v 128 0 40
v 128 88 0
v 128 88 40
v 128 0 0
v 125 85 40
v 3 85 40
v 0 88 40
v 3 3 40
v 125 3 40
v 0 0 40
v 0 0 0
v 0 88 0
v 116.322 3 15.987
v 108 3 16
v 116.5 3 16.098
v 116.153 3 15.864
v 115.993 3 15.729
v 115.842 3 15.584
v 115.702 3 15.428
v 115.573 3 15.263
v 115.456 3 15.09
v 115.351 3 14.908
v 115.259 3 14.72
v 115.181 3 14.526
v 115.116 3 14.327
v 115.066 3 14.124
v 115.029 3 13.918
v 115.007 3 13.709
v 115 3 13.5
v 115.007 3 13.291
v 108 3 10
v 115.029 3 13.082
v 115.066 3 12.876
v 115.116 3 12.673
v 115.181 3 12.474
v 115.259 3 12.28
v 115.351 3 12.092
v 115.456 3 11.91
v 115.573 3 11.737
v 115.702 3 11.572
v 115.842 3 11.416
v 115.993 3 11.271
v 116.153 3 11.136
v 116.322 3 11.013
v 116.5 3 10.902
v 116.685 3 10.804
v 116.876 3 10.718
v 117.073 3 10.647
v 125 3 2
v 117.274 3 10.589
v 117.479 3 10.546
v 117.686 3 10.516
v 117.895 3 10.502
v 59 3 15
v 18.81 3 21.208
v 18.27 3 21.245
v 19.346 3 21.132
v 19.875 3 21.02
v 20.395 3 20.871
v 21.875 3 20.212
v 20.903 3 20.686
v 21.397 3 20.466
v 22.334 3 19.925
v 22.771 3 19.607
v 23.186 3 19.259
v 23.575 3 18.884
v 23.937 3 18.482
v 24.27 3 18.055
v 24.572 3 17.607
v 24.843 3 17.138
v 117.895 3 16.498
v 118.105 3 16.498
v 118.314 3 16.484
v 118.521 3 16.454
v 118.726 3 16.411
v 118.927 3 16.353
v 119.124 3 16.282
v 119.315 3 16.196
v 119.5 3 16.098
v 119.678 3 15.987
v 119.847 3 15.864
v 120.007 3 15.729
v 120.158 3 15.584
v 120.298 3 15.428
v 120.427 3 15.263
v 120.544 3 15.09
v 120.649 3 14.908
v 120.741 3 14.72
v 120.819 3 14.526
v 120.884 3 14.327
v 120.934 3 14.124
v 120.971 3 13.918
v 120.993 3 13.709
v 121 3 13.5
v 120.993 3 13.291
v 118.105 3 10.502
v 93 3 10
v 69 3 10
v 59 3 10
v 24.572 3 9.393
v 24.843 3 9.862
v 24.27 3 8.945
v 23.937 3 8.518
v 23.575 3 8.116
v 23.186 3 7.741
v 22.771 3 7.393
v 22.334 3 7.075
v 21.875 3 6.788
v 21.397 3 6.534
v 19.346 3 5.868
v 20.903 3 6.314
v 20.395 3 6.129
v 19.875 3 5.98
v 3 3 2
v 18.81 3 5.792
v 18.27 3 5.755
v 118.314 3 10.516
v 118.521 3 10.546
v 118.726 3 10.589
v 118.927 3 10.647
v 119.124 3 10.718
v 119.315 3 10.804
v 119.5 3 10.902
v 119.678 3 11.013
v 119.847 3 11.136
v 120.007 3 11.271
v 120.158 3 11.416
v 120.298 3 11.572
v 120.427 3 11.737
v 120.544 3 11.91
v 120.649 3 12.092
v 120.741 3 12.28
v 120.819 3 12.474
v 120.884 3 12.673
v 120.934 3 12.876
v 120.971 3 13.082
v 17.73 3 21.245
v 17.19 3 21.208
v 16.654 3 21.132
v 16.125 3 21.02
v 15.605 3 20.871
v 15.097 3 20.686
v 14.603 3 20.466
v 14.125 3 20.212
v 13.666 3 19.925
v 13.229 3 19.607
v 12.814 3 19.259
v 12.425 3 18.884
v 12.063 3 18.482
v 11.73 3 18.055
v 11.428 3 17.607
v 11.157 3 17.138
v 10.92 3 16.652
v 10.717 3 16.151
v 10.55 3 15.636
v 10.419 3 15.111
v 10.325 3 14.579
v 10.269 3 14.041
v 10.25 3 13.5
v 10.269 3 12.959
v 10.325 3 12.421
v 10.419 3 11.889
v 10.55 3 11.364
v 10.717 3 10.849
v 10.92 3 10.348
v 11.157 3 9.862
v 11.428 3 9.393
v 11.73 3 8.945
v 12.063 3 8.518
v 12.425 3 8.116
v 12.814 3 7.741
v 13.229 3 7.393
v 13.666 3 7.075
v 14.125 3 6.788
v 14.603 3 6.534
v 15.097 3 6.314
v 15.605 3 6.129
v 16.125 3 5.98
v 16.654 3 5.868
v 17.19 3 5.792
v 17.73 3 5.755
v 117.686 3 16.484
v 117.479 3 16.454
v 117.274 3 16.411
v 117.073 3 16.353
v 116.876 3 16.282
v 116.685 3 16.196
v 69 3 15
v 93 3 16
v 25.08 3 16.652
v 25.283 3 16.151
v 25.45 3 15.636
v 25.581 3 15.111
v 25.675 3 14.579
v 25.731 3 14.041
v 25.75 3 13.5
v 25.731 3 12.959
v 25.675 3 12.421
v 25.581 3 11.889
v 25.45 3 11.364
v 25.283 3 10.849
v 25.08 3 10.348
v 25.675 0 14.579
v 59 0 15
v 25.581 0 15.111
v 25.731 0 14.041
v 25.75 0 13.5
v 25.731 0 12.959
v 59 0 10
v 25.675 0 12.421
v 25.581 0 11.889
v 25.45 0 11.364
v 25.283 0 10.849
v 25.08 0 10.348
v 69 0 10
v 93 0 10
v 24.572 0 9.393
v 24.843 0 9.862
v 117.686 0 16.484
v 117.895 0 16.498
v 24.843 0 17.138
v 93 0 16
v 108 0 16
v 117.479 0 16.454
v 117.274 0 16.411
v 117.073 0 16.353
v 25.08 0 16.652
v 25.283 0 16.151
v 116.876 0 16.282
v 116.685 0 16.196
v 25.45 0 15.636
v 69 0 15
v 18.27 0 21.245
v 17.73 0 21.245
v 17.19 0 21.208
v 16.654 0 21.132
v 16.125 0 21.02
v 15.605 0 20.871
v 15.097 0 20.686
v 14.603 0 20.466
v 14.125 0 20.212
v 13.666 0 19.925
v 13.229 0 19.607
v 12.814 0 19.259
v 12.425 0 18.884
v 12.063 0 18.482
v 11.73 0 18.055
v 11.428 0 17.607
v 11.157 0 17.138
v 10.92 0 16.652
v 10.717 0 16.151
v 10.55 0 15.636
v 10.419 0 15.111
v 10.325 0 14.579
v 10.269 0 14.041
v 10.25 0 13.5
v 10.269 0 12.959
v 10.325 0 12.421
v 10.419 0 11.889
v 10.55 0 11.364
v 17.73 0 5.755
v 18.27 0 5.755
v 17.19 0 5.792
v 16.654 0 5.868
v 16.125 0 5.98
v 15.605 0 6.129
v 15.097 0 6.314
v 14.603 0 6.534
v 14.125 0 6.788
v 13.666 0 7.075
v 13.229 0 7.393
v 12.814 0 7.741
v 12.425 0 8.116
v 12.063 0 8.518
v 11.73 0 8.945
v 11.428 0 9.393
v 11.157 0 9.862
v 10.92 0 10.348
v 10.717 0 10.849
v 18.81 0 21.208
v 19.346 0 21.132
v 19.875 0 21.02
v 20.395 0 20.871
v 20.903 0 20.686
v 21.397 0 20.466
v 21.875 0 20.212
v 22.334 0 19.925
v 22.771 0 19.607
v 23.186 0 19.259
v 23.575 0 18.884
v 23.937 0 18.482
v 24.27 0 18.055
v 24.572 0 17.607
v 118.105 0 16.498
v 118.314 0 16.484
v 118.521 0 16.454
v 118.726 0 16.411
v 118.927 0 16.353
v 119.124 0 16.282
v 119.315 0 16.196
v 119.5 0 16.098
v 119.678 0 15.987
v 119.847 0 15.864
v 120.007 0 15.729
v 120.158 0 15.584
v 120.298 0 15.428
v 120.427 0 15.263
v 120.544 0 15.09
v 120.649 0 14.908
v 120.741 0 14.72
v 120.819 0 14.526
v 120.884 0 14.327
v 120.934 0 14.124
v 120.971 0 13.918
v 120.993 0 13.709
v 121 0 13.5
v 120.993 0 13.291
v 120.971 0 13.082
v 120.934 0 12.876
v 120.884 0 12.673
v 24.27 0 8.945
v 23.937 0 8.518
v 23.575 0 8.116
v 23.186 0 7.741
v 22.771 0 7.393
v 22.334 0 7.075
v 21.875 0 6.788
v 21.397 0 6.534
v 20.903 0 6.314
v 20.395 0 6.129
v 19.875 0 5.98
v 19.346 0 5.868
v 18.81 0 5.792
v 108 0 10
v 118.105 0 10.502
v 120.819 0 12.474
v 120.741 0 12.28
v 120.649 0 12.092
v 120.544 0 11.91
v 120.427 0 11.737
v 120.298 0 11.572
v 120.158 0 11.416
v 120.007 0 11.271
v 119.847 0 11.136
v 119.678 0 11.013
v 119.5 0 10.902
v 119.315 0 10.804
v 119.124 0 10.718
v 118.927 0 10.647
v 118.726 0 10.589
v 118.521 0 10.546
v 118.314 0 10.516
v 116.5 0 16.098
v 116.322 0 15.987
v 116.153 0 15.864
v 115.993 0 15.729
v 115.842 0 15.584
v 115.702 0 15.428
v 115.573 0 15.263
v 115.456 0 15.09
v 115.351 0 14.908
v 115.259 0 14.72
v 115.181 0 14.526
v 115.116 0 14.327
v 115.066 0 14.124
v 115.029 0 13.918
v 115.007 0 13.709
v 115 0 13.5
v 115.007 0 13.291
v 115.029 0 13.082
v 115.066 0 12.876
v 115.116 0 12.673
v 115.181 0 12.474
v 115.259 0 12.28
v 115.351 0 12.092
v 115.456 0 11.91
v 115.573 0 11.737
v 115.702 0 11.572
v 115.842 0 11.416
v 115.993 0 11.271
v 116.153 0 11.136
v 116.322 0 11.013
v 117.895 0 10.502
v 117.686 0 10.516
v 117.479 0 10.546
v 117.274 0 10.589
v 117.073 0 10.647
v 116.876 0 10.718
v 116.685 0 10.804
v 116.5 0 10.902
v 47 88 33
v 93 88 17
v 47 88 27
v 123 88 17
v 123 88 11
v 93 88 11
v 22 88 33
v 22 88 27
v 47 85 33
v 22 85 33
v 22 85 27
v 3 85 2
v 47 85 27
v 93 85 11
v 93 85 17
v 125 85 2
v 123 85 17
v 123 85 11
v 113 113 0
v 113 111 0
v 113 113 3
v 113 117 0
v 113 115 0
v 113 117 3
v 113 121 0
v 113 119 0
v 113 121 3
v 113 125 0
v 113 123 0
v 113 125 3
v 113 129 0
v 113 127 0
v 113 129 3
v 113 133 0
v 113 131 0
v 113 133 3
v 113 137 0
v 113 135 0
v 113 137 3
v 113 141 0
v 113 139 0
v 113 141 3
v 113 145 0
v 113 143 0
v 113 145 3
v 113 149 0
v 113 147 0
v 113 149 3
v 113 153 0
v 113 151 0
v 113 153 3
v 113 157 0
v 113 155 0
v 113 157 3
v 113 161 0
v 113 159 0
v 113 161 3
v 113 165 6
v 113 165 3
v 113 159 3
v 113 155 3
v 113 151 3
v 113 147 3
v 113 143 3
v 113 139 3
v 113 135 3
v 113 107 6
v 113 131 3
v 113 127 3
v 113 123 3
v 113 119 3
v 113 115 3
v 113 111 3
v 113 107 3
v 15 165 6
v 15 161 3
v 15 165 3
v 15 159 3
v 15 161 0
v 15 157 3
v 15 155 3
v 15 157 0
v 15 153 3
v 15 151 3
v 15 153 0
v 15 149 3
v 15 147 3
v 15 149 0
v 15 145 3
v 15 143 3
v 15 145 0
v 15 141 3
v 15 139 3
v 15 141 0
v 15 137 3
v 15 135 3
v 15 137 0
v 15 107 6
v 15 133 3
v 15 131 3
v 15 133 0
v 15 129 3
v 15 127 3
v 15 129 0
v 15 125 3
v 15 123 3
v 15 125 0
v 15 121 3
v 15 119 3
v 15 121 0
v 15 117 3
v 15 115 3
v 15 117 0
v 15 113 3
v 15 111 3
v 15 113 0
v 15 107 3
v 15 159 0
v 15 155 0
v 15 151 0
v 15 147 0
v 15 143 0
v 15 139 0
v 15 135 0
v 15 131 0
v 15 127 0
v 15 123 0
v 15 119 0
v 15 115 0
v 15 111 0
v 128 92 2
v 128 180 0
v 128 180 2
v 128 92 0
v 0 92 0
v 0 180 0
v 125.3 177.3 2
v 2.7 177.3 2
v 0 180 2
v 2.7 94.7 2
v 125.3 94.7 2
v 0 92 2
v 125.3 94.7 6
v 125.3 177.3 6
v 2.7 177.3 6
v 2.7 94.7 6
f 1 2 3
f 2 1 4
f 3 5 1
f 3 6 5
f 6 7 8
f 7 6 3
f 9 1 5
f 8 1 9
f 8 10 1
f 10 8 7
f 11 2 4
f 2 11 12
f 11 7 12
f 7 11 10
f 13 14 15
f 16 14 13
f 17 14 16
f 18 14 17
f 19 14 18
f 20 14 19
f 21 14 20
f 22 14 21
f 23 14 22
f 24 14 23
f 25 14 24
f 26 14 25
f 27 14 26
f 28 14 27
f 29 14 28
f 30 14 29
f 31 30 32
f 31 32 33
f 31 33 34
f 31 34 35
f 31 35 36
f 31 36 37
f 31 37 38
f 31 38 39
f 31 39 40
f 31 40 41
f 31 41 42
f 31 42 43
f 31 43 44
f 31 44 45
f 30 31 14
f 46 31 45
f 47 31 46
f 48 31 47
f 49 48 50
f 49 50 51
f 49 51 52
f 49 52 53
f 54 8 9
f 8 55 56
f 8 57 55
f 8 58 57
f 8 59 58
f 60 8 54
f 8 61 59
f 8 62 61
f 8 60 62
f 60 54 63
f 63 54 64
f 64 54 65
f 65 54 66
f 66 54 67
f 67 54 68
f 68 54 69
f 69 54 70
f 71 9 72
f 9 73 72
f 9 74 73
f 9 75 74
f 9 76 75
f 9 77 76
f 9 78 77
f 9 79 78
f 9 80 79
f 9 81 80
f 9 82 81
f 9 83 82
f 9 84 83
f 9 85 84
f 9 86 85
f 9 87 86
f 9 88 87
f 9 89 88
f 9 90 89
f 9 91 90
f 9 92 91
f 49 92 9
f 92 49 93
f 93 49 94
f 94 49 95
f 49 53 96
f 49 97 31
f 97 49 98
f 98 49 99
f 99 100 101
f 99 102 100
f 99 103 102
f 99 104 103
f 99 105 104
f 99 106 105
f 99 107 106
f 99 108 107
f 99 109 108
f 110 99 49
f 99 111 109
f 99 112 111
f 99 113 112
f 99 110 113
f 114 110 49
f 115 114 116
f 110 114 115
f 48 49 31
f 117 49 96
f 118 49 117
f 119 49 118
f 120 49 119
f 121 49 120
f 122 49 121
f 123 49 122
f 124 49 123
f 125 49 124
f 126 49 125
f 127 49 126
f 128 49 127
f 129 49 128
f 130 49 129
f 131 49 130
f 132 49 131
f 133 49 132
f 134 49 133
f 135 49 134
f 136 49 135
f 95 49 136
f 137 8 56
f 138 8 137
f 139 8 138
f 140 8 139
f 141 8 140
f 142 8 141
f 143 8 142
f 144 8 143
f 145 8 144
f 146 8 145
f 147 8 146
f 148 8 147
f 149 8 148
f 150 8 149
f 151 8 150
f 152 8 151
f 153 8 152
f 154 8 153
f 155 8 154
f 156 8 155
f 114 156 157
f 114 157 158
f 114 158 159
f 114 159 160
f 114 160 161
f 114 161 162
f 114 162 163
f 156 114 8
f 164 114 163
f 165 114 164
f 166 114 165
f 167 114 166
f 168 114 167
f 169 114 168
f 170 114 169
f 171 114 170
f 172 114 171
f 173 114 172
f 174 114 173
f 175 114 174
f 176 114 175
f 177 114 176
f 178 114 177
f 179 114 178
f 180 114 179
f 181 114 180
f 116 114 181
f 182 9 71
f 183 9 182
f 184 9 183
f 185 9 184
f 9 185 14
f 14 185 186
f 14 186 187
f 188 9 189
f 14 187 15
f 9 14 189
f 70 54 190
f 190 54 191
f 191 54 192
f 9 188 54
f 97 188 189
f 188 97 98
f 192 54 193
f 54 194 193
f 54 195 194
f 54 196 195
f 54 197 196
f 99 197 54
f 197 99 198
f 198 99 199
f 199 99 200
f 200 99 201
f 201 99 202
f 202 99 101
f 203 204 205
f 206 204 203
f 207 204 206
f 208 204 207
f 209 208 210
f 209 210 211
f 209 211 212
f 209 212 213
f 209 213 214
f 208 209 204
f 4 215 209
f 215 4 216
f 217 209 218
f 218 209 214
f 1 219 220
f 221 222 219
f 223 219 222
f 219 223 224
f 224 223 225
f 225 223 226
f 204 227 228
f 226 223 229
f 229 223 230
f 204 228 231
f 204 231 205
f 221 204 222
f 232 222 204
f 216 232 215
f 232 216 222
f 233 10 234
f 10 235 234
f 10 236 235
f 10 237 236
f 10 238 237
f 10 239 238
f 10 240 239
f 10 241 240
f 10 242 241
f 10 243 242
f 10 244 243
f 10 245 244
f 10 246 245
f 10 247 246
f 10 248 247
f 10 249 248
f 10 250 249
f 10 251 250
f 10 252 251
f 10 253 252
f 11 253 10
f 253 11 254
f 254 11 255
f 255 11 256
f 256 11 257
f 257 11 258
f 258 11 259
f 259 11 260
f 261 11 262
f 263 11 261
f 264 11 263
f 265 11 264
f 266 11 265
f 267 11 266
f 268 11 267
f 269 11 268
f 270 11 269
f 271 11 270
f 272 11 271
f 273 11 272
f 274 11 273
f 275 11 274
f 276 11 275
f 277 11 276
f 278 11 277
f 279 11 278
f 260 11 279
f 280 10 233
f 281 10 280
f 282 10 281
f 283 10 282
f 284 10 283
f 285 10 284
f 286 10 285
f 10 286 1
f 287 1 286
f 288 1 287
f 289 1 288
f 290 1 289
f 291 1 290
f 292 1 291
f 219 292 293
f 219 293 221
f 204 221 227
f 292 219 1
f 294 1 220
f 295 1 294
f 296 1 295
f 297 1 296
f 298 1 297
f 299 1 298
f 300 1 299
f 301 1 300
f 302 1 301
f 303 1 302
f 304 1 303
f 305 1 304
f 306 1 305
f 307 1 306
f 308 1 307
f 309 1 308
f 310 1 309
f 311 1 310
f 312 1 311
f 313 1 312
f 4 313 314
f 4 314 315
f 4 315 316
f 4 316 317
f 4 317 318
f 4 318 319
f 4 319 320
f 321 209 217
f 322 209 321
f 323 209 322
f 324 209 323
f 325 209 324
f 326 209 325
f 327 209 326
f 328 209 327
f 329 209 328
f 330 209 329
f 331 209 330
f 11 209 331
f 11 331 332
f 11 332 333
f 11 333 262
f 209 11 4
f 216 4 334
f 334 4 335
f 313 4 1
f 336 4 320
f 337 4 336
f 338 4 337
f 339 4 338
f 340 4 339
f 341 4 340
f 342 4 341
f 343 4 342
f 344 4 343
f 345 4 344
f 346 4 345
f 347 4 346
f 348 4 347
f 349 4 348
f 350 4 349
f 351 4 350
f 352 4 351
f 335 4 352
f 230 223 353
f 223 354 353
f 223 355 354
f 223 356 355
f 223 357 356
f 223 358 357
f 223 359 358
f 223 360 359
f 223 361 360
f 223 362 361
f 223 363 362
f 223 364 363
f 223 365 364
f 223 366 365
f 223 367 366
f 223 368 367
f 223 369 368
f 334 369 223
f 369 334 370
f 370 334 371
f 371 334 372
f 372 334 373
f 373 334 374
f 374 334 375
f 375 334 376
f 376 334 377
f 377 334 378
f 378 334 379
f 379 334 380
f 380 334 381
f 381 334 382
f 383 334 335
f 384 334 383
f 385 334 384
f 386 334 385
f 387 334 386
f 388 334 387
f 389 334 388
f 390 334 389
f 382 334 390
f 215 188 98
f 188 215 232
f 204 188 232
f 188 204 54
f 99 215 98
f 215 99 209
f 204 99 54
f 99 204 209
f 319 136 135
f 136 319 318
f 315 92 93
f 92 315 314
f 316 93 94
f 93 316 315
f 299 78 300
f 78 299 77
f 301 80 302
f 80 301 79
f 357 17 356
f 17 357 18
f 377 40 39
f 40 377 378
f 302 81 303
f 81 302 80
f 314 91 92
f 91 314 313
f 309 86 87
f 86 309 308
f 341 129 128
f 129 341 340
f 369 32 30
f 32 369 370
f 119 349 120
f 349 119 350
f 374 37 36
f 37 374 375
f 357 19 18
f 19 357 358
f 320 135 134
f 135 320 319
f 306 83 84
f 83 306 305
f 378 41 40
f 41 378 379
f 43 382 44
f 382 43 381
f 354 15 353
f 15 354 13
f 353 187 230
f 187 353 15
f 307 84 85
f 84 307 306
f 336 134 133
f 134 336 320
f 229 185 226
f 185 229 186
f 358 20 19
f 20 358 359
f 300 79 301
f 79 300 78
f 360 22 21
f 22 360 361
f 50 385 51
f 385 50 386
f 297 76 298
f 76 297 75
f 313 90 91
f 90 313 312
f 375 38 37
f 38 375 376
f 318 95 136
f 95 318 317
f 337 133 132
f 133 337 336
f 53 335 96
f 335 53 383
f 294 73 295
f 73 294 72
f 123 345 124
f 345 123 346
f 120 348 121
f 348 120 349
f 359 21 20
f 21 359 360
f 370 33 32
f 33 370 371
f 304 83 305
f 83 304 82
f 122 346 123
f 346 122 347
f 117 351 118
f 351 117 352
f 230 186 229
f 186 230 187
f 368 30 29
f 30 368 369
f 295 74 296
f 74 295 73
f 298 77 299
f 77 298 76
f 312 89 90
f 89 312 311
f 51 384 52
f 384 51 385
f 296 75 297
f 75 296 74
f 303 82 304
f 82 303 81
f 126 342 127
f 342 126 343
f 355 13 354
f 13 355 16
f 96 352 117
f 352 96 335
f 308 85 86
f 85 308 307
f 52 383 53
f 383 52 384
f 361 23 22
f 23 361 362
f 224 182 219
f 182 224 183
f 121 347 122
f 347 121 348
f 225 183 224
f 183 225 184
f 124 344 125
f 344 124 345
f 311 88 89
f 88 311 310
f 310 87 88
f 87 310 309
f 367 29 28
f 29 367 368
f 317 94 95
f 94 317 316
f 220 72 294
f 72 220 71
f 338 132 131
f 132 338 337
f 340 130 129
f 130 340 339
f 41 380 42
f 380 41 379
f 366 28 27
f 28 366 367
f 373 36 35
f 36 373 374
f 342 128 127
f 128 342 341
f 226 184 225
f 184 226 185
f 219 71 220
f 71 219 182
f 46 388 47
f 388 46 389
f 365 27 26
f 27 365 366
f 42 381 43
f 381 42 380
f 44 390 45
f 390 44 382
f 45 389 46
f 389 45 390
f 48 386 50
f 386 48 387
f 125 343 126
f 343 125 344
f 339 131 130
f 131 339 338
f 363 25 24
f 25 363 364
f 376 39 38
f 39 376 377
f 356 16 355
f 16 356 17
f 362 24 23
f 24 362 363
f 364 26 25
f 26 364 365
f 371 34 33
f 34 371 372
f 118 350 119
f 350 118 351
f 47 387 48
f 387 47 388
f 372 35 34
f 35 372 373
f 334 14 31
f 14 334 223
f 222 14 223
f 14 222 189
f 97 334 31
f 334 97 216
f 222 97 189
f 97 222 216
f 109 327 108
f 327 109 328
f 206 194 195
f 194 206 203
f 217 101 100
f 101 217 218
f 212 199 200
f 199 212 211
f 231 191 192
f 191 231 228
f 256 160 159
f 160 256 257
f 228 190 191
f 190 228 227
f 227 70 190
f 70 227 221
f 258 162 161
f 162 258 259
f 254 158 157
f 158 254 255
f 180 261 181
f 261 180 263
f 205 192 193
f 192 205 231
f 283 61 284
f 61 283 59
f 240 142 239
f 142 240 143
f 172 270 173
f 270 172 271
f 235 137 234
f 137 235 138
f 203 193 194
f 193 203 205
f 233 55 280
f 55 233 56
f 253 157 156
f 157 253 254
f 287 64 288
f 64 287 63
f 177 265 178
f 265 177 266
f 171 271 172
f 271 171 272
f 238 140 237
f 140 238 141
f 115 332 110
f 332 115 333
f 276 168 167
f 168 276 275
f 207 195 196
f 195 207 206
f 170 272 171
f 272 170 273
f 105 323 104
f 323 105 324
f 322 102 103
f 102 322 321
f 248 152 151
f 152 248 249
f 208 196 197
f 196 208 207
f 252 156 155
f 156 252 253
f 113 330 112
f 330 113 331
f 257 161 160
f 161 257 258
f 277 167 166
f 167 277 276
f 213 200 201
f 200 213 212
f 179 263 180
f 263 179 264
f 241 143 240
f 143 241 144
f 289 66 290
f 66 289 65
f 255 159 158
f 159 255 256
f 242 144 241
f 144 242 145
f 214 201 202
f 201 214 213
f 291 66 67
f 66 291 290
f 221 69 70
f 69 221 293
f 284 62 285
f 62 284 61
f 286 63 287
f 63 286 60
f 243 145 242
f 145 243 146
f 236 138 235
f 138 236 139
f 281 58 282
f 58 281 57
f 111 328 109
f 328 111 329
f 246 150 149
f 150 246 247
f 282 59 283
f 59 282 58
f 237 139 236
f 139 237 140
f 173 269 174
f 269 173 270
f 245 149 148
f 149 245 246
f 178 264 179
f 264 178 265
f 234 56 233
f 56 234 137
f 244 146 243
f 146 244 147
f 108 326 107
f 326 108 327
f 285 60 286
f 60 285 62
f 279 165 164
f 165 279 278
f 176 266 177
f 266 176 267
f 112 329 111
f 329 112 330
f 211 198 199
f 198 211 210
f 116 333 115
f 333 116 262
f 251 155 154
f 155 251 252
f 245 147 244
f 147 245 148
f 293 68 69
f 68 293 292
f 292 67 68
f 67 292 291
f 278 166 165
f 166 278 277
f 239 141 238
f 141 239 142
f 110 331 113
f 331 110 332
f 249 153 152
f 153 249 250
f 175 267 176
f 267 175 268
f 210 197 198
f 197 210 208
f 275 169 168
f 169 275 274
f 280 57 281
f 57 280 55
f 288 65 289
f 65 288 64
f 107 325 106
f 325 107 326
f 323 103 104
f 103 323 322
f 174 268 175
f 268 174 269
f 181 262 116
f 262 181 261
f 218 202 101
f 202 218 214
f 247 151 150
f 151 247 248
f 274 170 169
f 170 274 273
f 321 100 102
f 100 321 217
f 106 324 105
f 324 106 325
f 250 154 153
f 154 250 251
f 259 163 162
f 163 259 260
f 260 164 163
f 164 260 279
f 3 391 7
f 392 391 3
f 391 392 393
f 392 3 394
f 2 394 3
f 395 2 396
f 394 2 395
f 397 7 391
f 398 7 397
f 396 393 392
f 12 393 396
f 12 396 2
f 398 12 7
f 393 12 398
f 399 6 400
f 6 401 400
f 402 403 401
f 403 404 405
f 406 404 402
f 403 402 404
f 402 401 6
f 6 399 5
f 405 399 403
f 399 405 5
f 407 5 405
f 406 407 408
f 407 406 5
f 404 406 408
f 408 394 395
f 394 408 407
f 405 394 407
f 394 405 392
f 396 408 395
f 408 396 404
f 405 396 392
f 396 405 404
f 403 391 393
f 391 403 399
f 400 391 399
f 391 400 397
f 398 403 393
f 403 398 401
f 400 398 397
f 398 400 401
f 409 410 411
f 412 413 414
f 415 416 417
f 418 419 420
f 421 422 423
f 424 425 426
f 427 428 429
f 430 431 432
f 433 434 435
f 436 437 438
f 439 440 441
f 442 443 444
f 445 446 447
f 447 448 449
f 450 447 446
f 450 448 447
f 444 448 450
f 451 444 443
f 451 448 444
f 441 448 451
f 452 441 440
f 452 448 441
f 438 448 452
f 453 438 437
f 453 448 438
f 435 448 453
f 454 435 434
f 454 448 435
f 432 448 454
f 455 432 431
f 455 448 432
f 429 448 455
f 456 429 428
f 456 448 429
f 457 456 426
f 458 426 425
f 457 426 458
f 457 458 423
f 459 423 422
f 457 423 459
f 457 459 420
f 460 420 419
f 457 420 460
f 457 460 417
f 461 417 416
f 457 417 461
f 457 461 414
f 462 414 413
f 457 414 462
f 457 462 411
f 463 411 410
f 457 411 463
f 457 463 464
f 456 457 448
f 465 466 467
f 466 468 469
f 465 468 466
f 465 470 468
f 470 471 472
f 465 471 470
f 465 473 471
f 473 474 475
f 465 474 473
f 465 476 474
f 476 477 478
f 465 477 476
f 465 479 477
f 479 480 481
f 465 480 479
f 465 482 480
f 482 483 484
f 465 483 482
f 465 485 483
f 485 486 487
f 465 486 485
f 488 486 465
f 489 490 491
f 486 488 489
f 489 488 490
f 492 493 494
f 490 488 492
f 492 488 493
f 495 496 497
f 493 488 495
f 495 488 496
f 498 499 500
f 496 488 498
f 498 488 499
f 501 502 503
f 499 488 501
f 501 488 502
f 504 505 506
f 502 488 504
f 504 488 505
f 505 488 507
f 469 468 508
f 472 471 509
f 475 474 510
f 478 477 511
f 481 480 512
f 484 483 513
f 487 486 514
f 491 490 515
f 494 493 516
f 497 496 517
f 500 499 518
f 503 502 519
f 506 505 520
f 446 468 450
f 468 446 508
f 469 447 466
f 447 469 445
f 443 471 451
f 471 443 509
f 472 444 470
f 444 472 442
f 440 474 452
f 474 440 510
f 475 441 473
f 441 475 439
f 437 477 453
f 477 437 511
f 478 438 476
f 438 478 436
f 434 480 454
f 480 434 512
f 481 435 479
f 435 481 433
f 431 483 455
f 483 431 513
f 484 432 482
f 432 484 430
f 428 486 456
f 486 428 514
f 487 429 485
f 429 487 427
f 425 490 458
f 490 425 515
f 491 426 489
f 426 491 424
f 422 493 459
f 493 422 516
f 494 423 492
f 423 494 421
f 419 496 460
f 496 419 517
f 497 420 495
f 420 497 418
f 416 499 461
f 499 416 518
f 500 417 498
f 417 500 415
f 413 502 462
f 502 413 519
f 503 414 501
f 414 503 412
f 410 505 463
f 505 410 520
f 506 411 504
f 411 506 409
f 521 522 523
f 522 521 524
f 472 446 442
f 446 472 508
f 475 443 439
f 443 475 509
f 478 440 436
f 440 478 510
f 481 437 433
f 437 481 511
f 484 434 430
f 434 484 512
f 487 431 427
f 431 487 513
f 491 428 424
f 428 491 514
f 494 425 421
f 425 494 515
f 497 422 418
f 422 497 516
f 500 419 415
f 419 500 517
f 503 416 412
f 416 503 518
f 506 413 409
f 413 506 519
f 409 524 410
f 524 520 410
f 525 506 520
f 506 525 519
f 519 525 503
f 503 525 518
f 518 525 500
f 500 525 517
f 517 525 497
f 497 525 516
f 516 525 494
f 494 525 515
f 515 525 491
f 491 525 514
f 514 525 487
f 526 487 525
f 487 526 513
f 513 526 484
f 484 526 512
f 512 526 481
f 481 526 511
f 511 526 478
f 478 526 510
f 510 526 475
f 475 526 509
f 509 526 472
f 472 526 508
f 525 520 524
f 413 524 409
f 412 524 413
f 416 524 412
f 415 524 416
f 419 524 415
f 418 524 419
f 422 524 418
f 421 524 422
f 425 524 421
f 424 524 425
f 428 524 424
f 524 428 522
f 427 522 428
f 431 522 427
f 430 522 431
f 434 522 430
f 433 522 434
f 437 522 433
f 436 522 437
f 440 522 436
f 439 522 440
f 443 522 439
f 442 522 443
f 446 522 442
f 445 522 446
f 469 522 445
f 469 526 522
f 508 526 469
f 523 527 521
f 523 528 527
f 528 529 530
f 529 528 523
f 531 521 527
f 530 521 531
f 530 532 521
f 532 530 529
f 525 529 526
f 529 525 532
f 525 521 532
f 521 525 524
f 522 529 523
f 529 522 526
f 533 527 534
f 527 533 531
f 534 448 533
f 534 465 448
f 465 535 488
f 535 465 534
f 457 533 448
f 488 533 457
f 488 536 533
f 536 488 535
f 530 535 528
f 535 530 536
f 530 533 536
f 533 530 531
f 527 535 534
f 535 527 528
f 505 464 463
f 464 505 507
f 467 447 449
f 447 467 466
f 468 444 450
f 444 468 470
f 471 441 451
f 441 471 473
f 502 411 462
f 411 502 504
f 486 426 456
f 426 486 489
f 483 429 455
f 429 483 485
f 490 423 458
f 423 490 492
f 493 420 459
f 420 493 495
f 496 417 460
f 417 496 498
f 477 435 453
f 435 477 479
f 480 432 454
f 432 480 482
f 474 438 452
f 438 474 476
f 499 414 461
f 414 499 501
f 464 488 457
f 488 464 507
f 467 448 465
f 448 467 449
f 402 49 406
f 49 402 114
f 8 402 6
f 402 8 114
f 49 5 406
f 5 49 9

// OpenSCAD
//Boks til liten forsterkerenhet.
//Dimensjoner
walls = 3;

inner_depth = 82;
inner_width = 122;

depth = inner_depth + 2 * walls;
width = inner_width + 2 * walls;

height = 40;
lid = 2;
lid_vents = 0.4; //how many percent of the lid should be vented?
vent_lid_hole_radius = 1.5;
lid_vents_marg = 5;
lid_vents_number = 20;
bottom = 2;

// Parameters for pin dimensions
pin_diameter = 2.5;  // Adjust diameter based on hole size on the ESP32
pin_height = 8;    // Height of the pins to hold the board

esp32_separation = 1;
esp32_power_width = 10;

//Bottom
translate ([0,0,0]) cube([width, depth,bottom]);

//sides
//left
translate ([0,0,0]) cube([walls,depth,height]);

//right
translate ([width-walls,0,0]){
    cube ([walls,depth,height]);
}

//back
translate([0,depth-walls,0]){
   difference(){
       cube ([width, walls, height]);
	   //put holes to cutout below here...
       //line in
       //translate([width-30,walls-1,10])rotate([90,0,0])cylinder(r=2,h=walls*2,center=true,$fn=90);
       //translate ([width-15,-2,10]) cube ([8.1,walls*2,12.1]);

       //RELAY opening
       translate([width - walls - 30 - 2, -2, bottom + 9])
            cube([30, walls+5, walls*2]);

       //cable opening
       translate([22, -2, bottom + 25])
            cube([25, walls+5, walls*2]);


    }
}
//front
translate([0,0,0]){
    union() {
        //Power Cable for ESP32 usb, supports usb-c

    difference(){
        cube ([width, walls, height]);

        translate([width/2 - esp32_power_width/2, -1, bottom + 8])
            cube([esp32_power_width, walls + 2, walls+2]);


       //audio jack
       translate([width-walls-7, walls-1, bottom + 10 + 1.5])
            rotate([90,0,0])
            cylinder(r=3,h=walls*2,center=true,$fn=90);

       //sim card
       translate([width-walls-17-15, -1, bottom + 8])
            cube([15, walls+2, walls*2]);

       //switch
       translate([walls+15, walls-1, bottom + 10 + 1.5])
            rotate([90,0,0])
            cylinder(r=15.5/2,h=walls*2,center=true,$fn=90);

    }
    }

}


// Parameters for ventilation grid
slot_width = 2;      // Width of each slot
slot_spacing = 4;   // Space between each slot
slot_margin = 15;    // Margin on each side for the slots
lid_insert = 4;
lid_pressure_plus = 0.6;

// Lid with grid pattern
rotate([180, 0, 0]) {
    translate([0, -180, -lid]) {
        difference() {
            union() {
                // Outer part of the lid
                translate([0, 0, 0]) cube([width, depth, lid]);

                // Inner part to hollow out the lid
                translate([walls - lid_pressure_plus / 2, walls - lid_pressure_plus / 2, -lid_insert])
                    cube([
                        width - 2 * walls + lid_pressure_plus,
                        depth - 2 * walls + lid_pressure_plus,
                        lid_insert]);


            }

            translate([slot_margin, slot_margin, -lid_insert-1])
                cube([width - 2 * slot_margin, depth - 2 * slot_margin, lid_insert]);

            // translate([slot_margin, slot_margin, +lid-lid_insert-5])
            //     cube([width - 2 * slot_margin, depth - 2 * slot_margin, lid_insert]);

            // Horizontal slots for ventilation with margins on all sides
            for (y = [slot_margin + slot_spacing : slot_spacing : depth - slot_margin - slot_spacing]) {
                translate([slot_margin, y, +lid-lid_insert-5])
                    cube([width - 2 * slot_margin, slot_width, lid + lid_insert + 5]);
            }

        }
    }
}



// Creating pins for mounting ESP32
// translate([
//         walls + esp32_separation + pin_diameter / 2,
//         depth - walls - esp32_separation - pin_diameter / 2,
//         bottomspace + bottom
//     ])
//     cylinder(d = pin_diameter, h = pin_height);

// translate([
//         walls + esp32_separation + pin_diameter / 2 + 25,
//         depth - walls - esp32_separation - pin_diameter / 2,
//         bottomspace + bottom
//     ])
//     cylinder(d = pin_diameter, h = pin_height);

// translate([
//         walls + esp32_separation + pin_diameter / 2,
//         depth - walls - esp32_separation - pin_diameter / 2 - 50,
//         bottomspace + bottom
//     ])
//     cylinder(d = pin_diameter, h = pin_height);

// translate([
//         walls + esp32_separation + pin_diameter / 2 + 25,
//         depth - walls - esp32_separation - pin_diameter / 2 - 50,
//         bottomspace + bottom
//     ])
//     cylinder(d = pin_diameter, h = pin_height);


//Pins for Relay
// translate([
//         width - walls - esp32_separation - pin_diameter / 2,
//         depth - walls - esp32_separation - pin_diameter / 2,
//         bottomspace + bottom
//     ])
//     cylinder(d = pin_diameter, h = pin_height);
// translate([
//         width - walls - esp32_separation - pin_diameter / 2 - 33,
//         depth - walls - esp32_separation - pin_diameter / 2,
//         bottomspace + bottom
//     ])
//     cylinder(d = pin_diameter, h = pin_height);

// translate([
//         width - walls - esp32_separation - pin_diameter / 2,
//         depth - walls - esp32_separation - pin_diameter / 2 - 45,
//         bottomspace + bottom
//     ])
//     cylinder(d = pin_diameter, h = pin_height);

// translate([
//         width - walls - esp32_separation - pin_diameter / 2 - 33,
//         depth - walls - esp32_separation - pin_diameter / 2 - 45,
//         bottomspace + bottom
//     ])
//     cylinder(d = pin_diameter, h = pin_height);
